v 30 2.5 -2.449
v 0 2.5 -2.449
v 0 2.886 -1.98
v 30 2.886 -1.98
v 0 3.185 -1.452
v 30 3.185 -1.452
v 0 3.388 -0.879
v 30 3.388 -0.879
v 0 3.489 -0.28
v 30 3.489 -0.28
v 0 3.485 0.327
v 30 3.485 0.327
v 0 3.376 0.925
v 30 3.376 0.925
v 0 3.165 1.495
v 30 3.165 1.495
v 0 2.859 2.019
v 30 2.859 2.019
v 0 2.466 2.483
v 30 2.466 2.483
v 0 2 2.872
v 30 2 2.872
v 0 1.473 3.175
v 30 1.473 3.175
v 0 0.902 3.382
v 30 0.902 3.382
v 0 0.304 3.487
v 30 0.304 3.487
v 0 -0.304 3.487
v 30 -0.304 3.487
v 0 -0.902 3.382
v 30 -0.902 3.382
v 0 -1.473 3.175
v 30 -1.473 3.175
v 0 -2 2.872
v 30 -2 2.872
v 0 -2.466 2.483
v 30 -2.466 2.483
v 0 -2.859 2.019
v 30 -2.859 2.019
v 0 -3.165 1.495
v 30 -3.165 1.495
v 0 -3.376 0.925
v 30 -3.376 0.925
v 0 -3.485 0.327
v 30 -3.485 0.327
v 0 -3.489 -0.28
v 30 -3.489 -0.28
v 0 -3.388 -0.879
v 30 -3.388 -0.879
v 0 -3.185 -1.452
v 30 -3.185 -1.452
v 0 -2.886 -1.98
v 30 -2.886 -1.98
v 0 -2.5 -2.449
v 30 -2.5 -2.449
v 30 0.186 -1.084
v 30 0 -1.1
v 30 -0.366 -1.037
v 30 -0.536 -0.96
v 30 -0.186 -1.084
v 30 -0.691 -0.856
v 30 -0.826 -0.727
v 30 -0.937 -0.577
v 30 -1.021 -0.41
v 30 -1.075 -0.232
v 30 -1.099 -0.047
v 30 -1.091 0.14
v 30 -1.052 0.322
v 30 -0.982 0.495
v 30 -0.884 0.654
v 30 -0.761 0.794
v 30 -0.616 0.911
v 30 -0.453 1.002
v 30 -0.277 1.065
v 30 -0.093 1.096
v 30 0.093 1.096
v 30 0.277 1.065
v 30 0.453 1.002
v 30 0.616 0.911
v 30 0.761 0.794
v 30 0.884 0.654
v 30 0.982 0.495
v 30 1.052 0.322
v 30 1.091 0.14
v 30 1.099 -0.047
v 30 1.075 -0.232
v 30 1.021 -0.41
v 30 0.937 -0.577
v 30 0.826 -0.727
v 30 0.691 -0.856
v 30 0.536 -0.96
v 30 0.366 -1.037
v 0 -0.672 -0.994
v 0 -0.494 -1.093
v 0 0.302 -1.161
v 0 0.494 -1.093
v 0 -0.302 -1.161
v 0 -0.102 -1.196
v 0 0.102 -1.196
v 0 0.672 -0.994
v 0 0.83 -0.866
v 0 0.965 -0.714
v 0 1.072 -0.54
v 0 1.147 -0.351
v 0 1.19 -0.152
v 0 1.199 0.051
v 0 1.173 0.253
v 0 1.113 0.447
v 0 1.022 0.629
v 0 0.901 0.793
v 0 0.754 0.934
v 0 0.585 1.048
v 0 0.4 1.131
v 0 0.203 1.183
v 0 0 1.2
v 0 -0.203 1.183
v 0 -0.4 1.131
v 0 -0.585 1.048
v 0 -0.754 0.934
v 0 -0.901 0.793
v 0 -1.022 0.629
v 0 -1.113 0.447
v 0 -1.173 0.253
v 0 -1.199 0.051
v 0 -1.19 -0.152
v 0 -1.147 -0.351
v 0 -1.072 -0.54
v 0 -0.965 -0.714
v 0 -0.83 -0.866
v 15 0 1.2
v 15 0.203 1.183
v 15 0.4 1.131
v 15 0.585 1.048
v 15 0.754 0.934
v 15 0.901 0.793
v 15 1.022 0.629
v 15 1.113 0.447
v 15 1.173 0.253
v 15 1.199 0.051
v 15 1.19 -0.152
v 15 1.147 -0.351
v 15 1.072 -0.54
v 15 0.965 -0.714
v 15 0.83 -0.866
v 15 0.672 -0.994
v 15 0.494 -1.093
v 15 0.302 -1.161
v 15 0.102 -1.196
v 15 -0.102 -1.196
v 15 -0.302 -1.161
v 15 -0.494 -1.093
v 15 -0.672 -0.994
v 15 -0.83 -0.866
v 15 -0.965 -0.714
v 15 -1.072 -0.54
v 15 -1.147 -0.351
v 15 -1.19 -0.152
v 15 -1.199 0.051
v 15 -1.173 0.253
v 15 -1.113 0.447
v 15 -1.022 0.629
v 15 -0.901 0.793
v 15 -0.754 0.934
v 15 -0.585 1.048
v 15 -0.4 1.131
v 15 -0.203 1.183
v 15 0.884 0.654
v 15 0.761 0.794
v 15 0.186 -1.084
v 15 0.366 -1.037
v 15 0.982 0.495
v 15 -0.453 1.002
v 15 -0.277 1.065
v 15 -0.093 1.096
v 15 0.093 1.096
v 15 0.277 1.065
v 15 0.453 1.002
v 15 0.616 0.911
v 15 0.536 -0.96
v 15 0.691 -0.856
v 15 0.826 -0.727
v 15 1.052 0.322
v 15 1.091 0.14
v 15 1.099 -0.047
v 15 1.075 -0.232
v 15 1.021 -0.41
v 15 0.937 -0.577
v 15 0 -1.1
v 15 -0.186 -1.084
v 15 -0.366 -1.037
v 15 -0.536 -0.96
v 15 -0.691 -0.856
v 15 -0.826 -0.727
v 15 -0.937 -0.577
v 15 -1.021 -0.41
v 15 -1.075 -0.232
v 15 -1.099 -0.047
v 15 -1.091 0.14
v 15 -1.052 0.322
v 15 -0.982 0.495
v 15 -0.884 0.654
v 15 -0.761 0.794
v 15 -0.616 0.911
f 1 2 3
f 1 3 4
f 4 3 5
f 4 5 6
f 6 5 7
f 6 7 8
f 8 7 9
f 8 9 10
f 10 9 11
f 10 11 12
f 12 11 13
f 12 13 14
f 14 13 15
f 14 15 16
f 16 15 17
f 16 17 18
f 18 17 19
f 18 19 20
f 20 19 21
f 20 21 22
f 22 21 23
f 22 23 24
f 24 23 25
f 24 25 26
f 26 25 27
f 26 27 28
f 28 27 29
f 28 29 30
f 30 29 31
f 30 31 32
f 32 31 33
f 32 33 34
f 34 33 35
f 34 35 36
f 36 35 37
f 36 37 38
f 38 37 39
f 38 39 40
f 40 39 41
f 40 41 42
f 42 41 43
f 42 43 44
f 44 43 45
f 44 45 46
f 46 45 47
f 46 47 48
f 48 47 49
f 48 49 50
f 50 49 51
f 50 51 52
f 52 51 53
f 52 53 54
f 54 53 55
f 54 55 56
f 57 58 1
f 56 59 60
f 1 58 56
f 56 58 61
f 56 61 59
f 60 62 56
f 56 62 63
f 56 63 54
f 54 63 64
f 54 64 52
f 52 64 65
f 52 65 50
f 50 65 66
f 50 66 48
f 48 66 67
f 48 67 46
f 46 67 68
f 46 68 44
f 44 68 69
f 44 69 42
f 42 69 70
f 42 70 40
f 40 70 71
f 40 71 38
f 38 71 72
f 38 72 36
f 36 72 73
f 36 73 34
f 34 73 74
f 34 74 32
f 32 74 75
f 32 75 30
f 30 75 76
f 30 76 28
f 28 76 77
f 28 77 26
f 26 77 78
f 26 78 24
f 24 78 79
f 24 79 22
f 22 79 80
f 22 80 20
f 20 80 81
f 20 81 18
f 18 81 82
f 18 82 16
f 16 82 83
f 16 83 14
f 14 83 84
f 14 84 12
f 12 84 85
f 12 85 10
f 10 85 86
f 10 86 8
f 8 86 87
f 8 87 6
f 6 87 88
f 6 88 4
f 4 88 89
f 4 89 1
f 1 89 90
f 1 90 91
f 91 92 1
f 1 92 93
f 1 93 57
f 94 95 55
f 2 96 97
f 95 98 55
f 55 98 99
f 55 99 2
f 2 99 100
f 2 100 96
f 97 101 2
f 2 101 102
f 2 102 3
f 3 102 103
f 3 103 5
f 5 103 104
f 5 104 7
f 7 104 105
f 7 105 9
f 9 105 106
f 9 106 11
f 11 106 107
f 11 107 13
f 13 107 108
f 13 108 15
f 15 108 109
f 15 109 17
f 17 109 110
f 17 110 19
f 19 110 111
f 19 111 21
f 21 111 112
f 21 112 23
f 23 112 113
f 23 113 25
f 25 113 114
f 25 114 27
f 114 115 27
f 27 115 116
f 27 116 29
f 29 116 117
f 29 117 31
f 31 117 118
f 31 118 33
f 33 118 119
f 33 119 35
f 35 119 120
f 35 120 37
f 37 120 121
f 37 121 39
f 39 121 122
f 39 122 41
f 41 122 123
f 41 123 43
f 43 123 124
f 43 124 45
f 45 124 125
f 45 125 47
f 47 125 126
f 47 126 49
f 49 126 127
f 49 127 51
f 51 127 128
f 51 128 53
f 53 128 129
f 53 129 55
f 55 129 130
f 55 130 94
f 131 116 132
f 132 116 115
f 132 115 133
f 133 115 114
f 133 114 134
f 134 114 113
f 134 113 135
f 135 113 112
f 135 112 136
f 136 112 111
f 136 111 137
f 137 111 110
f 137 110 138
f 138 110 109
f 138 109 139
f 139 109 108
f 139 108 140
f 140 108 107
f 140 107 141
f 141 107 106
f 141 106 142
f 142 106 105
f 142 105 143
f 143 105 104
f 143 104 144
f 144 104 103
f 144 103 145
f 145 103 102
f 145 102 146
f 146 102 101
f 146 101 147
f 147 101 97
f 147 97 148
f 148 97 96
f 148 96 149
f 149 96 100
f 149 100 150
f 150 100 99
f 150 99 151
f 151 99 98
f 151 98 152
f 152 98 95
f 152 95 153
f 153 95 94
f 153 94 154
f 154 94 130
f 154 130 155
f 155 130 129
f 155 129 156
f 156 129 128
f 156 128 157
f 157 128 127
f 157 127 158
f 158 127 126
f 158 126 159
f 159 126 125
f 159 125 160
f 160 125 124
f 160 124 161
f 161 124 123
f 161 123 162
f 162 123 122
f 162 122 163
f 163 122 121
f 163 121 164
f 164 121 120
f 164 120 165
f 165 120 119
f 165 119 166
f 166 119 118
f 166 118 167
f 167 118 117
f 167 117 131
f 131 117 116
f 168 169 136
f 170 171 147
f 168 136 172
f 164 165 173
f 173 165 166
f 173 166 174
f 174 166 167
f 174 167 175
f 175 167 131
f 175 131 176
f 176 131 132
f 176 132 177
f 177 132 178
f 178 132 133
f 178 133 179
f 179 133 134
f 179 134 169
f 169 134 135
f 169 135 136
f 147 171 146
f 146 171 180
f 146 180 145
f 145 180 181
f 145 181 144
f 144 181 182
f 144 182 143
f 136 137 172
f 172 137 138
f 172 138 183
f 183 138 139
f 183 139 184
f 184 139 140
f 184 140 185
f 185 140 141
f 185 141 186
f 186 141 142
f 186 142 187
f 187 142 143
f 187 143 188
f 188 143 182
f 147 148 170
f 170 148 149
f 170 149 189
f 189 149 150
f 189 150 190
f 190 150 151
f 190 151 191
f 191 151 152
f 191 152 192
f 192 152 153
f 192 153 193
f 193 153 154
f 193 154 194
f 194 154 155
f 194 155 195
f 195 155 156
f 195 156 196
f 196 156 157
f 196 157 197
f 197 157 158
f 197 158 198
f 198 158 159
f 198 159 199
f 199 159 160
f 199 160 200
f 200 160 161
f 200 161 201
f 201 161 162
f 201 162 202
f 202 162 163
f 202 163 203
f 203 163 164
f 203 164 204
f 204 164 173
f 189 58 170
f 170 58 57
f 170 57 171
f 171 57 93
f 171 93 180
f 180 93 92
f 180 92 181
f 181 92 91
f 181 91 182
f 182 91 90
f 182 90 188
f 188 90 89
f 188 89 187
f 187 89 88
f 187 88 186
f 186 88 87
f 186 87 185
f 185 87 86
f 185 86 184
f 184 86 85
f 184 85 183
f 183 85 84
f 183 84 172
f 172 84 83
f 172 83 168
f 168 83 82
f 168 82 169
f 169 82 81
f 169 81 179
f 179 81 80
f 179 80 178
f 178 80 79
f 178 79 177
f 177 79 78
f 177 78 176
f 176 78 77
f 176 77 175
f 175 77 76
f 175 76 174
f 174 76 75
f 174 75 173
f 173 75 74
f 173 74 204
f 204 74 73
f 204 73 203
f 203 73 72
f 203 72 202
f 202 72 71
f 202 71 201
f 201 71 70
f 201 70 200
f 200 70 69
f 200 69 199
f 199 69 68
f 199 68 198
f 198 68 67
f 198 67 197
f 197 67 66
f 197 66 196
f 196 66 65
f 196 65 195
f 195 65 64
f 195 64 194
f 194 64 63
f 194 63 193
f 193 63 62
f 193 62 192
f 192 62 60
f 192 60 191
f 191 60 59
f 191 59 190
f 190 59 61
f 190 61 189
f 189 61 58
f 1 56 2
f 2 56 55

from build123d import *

# Parameters (mm, degrees)
SKETCH1_R           = 3.5
BOSS_EXTRUDE1_DEPTH = 30
SKETCH2_R           = 1.2
CUT_EXTRUDE1_DEPTH  = 15
SKETCH3_R           = 1.1
CUT_EXTRUDE2_DEPTH  = 15
CUT_EXTRUDE3_START  = -30
CUT_EXTRUDE3_DEPTH  = 30


with BuildPart() as part:
    # Sketch1 → Boss-Extrude1 (new body)
    with BuildSketch(Plane(origin=(0, 0, 0), x_dir=(0, 0, -1), z_dir=(1, 0, 0))):
        Circle(SKETCH1_R)
    extrude(amount=BOSS_EXTRUDE1_DEPTH)

    # Sketch2 → Cut-Extrude1 (cut)
    with BuildSketch(Plane.ZY):
        Circle(SKETCH2_R)
    extrude(amount=-CUT_EXTRUDE1_DEPTH, mode=Mode.SUBTRACT)

    # Sketch3 → Cut-Extrude2 (cut)
    with BuildSketch(Plane(origin=(30, 0, 0), x_dir=(0, 0, -1), z_dir=(1, 0, 0))):
        Circle(SKETCH3_R)
    extrude(amount=-CUT_EXTRUDE2_DEPTH, mode=Mode.SUBTRACT)

    # Sketch4 → Cut-Extrude3 (cut)
    with BuildSketch(Plane(origin=(30, 0, 0), x_dir=(0, 0, -1), z_dir=(1, 0, 0)).offset(CUT_EXTRUDE3_START)):
        with BuildLine():
            Line((2.449489743, 2.5), (2.449489743, -2.5))
            ThreePointArc((2.449489743, -2.5), (3.5, 0), (2.449489743, 2.5))
        make_face()
    extrude(amount=CUT_EXTRUDE3_DEPTH, mode=Mode.SUBTRACT)


solid = part.part
